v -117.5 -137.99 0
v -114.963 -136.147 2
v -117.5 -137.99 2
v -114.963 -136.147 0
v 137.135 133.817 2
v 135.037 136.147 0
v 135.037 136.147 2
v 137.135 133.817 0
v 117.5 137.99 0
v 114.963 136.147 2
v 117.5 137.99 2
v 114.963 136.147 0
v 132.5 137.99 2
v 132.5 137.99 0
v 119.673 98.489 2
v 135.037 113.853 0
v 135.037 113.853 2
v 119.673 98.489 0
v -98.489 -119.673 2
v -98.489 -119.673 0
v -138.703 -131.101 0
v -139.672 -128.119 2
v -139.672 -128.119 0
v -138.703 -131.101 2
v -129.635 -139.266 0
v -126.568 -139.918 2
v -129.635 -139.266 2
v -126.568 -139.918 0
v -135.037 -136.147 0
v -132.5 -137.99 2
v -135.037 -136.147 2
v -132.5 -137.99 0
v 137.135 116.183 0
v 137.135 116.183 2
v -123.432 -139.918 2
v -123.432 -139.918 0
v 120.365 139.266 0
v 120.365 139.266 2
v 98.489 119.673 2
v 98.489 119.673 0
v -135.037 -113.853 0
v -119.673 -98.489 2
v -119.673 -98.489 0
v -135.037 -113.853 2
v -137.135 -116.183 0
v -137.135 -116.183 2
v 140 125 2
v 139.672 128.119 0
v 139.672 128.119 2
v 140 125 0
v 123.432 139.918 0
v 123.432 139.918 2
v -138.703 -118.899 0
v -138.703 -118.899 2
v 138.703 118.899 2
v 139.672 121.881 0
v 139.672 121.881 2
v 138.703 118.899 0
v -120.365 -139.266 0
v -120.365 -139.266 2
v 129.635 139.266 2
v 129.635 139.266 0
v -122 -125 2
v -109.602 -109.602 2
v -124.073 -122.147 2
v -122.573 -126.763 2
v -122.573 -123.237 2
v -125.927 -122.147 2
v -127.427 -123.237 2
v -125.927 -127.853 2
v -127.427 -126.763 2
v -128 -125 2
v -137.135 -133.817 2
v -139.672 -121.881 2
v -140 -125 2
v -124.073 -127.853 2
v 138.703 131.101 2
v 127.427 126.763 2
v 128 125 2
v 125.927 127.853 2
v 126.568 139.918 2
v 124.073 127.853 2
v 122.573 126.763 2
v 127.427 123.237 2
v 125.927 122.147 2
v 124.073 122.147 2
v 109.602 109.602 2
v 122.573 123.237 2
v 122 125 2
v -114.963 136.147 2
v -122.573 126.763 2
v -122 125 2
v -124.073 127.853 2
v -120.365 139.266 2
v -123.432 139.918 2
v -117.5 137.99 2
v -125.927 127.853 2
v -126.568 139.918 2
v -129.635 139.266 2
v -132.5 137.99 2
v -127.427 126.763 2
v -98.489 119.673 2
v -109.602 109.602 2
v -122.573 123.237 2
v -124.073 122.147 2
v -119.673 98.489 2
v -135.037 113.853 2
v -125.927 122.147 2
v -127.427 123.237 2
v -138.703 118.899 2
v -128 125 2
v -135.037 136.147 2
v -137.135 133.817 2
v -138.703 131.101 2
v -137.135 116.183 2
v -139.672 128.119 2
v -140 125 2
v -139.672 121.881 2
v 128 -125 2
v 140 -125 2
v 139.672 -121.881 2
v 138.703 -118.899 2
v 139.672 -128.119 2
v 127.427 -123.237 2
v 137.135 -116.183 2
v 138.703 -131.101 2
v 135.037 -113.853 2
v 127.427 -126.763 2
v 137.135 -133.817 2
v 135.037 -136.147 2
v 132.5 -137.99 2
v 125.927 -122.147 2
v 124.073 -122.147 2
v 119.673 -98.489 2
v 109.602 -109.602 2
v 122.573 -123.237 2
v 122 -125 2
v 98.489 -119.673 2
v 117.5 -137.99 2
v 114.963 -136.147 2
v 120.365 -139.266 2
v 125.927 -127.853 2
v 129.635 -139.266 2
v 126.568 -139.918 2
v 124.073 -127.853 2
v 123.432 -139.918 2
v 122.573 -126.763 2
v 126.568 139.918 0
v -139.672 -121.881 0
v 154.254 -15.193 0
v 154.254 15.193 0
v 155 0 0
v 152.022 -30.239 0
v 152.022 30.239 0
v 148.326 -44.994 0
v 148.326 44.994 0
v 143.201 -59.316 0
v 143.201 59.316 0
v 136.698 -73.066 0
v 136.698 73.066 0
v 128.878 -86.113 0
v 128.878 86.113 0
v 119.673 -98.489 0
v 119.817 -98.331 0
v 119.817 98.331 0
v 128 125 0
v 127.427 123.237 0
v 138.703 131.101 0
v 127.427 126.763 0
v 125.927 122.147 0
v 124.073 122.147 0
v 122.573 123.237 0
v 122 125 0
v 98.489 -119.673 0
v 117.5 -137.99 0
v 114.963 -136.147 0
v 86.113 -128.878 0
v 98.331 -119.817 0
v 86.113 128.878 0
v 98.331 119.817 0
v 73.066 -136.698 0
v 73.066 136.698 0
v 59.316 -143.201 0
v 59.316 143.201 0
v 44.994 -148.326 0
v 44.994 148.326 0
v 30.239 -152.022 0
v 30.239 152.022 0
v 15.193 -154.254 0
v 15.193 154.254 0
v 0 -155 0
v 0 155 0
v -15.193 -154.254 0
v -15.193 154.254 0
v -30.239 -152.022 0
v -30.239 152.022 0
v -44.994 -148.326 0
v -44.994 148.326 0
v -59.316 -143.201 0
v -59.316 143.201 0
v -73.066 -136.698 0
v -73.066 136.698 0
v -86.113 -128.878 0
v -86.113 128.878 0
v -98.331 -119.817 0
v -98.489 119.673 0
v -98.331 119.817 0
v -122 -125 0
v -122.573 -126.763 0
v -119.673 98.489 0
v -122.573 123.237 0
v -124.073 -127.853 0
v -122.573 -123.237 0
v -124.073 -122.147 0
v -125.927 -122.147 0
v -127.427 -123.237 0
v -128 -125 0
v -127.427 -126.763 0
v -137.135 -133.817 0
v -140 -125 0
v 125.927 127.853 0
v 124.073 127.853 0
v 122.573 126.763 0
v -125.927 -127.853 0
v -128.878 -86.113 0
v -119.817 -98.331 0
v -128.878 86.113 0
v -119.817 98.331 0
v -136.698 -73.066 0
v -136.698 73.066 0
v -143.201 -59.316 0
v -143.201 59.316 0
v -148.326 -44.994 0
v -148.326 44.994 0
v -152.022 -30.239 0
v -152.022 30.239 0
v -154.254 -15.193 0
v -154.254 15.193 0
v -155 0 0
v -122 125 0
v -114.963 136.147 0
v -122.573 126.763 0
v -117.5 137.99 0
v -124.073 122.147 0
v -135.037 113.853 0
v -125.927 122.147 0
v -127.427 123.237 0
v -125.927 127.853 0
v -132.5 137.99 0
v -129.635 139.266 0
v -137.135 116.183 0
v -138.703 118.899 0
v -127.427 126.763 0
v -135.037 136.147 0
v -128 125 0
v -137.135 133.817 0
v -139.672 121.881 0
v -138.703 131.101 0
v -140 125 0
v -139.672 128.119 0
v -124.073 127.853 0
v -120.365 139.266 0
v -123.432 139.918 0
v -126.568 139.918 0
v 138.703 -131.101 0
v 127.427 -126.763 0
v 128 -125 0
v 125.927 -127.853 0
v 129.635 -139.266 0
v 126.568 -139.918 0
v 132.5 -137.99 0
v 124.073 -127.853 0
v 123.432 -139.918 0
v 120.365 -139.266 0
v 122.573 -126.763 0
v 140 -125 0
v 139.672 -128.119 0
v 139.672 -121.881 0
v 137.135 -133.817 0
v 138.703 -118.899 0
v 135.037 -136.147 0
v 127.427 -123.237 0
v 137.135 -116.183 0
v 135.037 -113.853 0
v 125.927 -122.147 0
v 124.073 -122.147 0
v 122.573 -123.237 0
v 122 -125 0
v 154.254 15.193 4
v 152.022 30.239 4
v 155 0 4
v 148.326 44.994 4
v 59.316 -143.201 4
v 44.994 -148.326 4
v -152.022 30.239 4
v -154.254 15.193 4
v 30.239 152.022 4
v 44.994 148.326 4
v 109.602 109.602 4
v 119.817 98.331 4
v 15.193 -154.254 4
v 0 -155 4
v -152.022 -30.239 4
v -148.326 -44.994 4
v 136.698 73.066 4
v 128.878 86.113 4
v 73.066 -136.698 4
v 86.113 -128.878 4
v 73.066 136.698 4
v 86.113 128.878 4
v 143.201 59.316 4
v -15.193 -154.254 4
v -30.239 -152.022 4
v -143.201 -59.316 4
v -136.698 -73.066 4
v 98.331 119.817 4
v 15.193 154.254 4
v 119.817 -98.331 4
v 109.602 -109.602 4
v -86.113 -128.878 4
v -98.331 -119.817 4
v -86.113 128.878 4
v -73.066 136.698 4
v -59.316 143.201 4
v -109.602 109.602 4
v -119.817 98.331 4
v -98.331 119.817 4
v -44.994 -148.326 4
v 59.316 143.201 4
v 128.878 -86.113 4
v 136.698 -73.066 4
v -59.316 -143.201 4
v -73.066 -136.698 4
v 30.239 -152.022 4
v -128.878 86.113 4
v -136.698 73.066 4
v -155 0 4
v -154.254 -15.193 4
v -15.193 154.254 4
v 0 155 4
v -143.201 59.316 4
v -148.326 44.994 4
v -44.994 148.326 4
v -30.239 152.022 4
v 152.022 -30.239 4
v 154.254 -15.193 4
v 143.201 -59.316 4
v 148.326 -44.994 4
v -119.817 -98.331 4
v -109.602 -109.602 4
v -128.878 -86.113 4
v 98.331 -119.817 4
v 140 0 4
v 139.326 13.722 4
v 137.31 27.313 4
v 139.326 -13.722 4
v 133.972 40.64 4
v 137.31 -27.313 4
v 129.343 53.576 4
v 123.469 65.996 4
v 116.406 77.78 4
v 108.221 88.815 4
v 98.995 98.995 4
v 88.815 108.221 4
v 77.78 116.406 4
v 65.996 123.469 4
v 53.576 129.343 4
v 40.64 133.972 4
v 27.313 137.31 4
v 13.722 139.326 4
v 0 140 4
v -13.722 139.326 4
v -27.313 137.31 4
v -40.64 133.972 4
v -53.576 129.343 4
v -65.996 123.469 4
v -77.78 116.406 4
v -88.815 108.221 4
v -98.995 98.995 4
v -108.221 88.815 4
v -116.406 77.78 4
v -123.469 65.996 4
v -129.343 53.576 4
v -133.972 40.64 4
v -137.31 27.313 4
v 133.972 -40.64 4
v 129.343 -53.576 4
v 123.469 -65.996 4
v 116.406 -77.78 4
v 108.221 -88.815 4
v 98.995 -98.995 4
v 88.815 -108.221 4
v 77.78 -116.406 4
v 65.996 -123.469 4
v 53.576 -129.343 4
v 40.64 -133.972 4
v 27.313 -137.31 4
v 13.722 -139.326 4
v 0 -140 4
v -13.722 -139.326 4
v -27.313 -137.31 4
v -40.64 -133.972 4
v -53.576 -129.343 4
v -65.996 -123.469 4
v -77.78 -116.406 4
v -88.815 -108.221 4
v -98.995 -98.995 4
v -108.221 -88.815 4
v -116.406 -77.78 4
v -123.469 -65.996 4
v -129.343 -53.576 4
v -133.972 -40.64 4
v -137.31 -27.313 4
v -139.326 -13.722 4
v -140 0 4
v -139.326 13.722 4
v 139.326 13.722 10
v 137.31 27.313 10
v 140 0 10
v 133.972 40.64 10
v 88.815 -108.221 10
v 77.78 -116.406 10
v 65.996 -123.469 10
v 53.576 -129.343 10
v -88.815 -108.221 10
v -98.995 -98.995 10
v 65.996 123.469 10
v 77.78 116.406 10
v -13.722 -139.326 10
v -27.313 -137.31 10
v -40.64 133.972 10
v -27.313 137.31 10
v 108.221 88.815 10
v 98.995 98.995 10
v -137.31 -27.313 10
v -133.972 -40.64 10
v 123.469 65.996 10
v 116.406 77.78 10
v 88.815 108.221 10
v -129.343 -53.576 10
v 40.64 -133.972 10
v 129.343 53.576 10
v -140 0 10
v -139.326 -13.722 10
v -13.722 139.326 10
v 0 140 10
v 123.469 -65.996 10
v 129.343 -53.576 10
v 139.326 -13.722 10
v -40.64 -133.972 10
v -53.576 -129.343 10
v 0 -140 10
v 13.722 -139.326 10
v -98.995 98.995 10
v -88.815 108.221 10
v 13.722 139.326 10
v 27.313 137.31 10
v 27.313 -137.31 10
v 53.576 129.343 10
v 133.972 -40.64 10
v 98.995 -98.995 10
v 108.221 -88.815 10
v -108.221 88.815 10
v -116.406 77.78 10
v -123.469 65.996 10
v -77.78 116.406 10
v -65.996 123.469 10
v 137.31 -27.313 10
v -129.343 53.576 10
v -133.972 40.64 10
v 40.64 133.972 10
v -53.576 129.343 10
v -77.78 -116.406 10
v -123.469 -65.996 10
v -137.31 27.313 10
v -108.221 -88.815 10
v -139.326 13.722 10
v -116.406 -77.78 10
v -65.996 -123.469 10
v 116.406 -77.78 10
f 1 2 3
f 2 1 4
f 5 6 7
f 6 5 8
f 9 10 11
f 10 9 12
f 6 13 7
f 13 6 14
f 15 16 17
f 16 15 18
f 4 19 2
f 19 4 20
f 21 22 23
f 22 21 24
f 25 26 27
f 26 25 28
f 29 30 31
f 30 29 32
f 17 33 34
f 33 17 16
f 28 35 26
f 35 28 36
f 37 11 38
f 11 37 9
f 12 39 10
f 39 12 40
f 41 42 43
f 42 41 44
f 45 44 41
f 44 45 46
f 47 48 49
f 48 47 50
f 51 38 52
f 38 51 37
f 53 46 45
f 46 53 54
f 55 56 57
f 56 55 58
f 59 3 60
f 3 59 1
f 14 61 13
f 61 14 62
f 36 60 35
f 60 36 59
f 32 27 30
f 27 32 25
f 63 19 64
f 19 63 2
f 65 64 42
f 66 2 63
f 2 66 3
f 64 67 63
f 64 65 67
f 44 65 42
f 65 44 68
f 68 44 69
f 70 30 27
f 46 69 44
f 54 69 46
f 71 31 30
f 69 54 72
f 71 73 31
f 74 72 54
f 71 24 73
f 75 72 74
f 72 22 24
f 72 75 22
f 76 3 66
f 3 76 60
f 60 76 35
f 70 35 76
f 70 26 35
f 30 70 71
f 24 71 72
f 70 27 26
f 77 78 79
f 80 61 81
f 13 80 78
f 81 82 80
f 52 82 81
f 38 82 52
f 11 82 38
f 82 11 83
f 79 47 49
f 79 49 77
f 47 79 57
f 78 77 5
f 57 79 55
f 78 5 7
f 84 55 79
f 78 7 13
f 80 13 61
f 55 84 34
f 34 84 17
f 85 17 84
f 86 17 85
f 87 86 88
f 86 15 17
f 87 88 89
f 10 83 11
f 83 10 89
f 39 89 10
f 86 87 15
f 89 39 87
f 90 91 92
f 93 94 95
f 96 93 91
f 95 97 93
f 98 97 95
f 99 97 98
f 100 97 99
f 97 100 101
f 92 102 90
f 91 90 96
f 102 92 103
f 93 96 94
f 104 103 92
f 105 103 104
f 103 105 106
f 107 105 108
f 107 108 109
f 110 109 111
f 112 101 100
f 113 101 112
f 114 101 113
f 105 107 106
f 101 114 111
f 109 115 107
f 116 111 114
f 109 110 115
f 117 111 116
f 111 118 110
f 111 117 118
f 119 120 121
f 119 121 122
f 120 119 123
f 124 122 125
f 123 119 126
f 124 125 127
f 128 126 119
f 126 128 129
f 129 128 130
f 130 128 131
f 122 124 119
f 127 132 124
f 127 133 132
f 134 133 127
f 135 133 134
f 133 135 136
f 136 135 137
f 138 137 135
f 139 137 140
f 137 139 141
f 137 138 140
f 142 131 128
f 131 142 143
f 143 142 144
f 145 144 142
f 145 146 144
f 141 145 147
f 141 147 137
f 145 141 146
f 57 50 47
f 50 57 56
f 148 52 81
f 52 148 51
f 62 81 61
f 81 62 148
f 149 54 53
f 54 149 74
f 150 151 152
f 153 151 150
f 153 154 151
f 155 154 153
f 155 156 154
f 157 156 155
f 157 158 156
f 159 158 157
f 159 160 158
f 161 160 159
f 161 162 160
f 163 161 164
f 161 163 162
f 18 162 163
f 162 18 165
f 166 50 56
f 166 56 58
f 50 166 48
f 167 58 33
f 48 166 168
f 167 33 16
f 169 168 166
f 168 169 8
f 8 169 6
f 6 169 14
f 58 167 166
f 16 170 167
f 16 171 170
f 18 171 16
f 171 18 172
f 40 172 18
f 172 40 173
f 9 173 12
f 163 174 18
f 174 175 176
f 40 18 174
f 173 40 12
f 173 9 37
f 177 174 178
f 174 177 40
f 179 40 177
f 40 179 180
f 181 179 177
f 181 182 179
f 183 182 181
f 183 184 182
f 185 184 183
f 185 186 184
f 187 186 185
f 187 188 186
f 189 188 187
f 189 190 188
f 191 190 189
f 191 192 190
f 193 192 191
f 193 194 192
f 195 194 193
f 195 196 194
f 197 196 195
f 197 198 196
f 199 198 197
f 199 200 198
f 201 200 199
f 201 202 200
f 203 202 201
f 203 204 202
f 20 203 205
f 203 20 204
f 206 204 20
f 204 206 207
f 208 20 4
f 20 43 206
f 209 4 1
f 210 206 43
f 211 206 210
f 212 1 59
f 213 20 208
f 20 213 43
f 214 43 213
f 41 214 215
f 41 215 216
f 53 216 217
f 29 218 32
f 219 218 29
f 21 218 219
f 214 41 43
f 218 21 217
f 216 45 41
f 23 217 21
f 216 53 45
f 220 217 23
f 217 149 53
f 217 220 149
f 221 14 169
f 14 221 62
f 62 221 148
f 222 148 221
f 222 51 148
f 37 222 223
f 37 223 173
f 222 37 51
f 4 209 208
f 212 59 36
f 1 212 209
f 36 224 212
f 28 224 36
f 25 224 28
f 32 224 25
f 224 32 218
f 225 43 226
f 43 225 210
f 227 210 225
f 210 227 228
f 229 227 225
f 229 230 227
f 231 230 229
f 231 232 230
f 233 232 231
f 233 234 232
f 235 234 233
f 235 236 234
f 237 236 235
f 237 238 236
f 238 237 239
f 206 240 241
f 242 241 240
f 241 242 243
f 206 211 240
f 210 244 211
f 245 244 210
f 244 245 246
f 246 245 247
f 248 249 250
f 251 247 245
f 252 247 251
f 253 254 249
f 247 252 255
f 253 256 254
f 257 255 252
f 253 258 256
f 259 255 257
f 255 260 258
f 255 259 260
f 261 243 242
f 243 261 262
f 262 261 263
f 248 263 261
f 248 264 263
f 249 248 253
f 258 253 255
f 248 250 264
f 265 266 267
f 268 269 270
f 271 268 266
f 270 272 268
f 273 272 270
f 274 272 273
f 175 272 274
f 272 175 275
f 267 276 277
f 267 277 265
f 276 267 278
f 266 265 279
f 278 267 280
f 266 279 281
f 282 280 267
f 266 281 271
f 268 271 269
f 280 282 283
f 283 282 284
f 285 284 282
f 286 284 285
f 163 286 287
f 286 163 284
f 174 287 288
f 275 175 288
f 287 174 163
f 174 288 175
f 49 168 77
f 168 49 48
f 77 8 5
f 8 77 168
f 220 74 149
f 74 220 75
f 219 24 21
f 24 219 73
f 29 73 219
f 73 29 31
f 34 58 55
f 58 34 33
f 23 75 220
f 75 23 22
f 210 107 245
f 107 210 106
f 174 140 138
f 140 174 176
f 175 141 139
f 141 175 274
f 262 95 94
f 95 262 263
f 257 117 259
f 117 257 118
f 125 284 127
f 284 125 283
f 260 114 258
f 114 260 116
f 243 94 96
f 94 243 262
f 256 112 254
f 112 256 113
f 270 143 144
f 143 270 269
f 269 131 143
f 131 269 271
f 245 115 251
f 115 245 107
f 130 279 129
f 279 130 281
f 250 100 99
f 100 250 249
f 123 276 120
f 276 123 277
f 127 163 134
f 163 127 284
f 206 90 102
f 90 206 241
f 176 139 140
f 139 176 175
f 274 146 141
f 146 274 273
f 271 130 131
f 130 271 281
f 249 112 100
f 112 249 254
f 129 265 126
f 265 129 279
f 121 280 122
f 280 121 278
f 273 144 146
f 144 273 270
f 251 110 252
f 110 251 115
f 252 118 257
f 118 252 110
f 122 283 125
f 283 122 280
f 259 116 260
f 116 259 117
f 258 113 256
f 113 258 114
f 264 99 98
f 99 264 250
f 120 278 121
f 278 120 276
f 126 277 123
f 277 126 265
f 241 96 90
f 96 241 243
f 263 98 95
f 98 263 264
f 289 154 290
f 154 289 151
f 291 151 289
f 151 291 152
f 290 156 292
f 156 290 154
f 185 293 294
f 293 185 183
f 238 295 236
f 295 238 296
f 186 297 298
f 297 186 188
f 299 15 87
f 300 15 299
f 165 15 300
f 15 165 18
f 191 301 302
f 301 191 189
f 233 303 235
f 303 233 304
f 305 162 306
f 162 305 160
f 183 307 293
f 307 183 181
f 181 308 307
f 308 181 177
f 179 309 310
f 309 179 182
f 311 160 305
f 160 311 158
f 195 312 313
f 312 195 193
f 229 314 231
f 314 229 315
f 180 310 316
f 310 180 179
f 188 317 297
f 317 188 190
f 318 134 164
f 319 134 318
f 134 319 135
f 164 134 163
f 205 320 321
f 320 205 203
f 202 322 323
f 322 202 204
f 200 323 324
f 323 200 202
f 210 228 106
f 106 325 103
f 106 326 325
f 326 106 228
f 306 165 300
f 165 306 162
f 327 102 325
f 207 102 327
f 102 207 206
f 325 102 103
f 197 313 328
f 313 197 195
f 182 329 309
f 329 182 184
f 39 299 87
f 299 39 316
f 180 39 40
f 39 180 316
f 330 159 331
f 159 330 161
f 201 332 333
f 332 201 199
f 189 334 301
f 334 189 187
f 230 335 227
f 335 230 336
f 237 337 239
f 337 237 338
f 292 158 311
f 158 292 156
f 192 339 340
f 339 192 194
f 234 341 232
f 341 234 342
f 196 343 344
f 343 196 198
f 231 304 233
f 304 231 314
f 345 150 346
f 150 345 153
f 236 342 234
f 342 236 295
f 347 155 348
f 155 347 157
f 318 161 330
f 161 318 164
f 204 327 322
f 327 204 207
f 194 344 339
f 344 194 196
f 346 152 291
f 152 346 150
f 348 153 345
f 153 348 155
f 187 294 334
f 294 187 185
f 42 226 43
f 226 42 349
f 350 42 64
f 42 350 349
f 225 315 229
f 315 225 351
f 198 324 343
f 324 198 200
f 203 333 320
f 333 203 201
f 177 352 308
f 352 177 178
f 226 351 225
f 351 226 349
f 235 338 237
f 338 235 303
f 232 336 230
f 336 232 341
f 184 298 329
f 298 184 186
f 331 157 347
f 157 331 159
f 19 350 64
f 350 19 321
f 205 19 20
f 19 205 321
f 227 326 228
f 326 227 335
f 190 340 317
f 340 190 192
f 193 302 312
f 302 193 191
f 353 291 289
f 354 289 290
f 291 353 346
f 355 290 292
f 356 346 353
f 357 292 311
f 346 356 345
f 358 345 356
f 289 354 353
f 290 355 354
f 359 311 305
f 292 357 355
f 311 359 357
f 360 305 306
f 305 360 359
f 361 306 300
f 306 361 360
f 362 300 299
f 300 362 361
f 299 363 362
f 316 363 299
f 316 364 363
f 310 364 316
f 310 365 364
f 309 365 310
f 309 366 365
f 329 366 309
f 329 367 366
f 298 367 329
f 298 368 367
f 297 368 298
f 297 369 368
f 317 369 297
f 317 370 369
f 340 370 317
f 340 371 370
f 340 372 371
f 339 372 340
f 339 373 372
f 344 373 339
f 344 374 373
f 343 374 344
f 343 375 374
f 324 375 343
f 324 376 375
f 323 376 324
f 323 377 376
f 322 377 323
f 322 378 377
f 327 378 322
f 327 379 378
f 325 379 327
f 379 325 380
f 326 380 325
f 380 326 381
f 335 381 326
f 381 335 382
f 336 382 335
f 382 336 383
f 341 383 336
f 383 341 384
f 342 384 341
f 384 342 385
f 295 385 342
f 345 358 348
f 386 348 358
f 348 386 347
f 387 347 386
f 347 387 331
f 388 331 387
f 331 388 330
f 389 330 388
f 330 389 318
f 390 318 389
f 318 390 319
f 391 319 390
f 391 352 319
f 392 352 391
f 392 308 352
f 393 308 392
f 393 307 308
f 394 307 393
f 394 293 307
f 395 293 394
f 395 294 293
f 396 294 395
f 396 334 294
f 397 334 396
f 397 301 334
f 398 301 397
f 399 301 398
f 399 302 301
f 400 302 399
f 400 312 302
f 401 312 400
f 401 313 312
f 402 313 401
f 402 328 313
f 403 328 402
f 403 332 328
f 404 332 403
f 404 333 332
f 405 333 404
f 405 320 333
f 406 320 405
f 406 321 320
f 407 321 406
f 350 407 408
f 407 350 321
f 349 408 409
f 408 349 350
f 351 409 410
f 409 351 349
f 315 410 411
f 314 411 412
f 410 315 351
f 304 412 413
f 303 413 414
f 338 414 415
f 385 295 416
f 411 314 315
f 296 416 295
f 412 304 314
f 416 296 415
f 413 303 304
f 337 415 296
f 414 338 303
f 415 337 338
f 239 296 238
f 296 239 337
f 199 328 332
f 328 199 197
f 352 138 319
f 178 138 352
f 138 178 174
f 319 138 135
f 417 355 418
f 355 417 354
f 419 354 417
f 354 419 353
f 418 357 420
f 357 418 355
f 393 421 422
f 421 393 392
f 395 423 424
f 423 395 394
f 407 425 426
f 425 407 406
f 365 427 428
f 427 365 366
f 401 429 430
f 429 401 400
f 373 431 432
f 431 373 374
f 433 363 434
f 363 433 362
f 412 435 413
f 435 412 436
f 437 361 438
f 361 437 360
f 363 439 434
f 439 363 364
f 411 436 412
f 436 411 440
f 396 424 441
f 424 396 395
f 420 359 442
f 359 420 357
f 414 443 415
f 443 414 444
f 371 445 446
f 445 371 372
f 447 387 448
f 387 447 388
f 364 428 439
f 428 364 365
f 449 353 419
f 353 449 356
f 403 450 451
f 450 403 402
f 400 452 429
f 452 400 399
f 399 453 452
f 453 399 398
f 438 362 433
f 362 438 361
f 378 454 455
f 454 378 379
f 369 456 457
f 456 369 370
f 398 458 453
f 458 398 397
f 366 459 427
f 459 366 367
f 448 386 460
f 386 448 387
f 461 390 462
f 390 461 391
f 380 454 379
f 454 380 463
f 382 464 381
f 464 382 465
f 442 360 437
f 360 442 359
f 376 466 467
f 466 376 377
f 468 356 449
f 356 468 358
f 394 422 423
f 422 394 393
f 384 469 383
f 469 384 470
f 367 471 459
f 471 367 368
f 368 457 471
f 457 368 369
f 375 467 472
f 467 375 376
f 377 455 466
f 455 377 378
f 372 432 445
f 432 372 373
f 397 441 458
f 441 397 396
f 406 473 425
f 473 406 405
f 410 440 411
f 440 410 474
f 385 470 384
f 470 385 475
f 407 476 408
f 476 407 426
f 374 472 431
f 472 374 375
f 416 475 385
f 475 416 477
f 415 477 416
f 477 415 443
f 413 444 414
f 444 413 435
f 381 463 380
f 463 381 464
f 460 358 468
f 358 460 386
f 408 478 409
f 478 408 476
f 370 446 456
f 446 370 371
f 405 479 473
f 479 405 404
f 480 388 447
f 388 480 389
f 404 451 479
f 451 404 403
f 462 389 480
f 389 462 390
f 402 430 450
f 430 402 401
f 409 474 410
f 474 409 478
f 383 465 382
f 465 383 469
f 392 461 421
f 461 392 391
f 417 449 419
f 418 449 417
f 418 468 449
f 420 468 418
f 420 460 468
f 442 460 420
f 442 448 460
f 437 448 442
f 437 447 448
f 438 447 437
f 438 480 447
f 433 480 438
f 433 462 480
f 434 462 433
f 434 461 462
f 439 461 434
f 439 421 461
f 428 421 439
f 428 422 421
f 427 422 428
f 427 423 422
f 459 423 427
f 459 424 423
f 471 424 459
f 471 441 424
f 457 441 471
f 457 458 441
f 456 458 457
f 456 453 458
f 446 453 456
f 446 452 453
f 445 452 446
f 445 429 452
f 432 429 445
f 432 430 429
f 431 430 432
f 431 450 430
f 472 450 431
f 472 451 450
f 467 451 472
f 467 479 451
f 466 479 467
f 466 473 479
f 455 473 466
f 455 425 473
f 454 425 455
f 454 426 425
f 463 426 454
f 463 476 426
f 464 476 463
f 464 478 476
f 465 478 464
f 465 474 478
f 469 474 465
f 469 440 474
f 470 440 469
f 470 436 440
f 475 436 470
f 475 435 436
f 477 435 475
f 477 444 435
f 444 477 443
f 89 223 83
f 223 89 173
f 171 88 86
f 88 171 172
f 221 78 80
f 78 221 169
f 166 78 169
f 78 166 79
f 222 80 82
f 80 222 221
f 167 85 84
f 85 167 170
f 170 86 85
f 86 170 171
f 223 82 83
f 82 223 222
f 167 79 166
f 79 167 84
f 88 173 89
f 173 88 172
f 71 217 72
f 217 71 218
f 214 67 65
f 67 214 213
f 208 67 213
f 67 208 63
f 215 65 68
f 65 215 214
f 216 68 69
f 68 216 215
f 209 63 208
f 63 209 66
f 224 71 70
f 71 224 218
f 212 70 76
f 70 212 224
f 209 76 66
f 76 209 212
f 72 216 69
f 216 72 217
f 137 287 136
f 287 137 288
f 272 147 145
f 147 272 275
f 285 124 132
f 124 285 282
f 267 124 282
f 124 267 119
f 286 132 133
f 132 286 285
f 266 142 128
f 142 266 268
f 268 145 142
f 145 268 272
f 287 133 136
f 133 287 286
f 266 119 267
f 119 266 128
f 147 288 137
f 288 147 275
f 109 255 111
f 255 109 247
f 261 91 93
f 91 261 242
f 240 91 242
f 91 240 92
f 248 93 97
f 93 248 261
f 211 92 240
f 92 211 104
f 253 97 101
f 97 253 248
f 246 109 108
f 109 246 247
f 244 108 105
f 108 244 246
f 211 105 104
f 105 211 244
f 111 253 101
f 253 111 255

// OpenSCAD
difference () {
    union() {
        hull() {
            translate([125, 125, 0]) {
                cylinder(h=2, r=15);
            }
            translate([-125, -125, 0]) {
                cylinder(h=2, r=15);
            }
        }
        hull () {
            translate([125, -125, 0]) {
                cylinder(h=2, r=15);
            }
            translate([-125, 125, 0]) {
                cylinder(h=2, r=15);
            }
        }
        cylinder(h=4, r=155, $fn=64);
        cylinder(h=10, r=140, $fn=64);
    }
    translate([125, 125, -5]) {
        cylinder(h=10, r=3);
    }
    translate([-125, -125, -5]) {
        cylinder(h=10, r=3);
    }
    translate([125, -125, -5]) {
        cylinder(h=10, r=3);
    }
    translate([-125, 125, -5]) {
        cylinder(h=10, r=3);
    }
}
